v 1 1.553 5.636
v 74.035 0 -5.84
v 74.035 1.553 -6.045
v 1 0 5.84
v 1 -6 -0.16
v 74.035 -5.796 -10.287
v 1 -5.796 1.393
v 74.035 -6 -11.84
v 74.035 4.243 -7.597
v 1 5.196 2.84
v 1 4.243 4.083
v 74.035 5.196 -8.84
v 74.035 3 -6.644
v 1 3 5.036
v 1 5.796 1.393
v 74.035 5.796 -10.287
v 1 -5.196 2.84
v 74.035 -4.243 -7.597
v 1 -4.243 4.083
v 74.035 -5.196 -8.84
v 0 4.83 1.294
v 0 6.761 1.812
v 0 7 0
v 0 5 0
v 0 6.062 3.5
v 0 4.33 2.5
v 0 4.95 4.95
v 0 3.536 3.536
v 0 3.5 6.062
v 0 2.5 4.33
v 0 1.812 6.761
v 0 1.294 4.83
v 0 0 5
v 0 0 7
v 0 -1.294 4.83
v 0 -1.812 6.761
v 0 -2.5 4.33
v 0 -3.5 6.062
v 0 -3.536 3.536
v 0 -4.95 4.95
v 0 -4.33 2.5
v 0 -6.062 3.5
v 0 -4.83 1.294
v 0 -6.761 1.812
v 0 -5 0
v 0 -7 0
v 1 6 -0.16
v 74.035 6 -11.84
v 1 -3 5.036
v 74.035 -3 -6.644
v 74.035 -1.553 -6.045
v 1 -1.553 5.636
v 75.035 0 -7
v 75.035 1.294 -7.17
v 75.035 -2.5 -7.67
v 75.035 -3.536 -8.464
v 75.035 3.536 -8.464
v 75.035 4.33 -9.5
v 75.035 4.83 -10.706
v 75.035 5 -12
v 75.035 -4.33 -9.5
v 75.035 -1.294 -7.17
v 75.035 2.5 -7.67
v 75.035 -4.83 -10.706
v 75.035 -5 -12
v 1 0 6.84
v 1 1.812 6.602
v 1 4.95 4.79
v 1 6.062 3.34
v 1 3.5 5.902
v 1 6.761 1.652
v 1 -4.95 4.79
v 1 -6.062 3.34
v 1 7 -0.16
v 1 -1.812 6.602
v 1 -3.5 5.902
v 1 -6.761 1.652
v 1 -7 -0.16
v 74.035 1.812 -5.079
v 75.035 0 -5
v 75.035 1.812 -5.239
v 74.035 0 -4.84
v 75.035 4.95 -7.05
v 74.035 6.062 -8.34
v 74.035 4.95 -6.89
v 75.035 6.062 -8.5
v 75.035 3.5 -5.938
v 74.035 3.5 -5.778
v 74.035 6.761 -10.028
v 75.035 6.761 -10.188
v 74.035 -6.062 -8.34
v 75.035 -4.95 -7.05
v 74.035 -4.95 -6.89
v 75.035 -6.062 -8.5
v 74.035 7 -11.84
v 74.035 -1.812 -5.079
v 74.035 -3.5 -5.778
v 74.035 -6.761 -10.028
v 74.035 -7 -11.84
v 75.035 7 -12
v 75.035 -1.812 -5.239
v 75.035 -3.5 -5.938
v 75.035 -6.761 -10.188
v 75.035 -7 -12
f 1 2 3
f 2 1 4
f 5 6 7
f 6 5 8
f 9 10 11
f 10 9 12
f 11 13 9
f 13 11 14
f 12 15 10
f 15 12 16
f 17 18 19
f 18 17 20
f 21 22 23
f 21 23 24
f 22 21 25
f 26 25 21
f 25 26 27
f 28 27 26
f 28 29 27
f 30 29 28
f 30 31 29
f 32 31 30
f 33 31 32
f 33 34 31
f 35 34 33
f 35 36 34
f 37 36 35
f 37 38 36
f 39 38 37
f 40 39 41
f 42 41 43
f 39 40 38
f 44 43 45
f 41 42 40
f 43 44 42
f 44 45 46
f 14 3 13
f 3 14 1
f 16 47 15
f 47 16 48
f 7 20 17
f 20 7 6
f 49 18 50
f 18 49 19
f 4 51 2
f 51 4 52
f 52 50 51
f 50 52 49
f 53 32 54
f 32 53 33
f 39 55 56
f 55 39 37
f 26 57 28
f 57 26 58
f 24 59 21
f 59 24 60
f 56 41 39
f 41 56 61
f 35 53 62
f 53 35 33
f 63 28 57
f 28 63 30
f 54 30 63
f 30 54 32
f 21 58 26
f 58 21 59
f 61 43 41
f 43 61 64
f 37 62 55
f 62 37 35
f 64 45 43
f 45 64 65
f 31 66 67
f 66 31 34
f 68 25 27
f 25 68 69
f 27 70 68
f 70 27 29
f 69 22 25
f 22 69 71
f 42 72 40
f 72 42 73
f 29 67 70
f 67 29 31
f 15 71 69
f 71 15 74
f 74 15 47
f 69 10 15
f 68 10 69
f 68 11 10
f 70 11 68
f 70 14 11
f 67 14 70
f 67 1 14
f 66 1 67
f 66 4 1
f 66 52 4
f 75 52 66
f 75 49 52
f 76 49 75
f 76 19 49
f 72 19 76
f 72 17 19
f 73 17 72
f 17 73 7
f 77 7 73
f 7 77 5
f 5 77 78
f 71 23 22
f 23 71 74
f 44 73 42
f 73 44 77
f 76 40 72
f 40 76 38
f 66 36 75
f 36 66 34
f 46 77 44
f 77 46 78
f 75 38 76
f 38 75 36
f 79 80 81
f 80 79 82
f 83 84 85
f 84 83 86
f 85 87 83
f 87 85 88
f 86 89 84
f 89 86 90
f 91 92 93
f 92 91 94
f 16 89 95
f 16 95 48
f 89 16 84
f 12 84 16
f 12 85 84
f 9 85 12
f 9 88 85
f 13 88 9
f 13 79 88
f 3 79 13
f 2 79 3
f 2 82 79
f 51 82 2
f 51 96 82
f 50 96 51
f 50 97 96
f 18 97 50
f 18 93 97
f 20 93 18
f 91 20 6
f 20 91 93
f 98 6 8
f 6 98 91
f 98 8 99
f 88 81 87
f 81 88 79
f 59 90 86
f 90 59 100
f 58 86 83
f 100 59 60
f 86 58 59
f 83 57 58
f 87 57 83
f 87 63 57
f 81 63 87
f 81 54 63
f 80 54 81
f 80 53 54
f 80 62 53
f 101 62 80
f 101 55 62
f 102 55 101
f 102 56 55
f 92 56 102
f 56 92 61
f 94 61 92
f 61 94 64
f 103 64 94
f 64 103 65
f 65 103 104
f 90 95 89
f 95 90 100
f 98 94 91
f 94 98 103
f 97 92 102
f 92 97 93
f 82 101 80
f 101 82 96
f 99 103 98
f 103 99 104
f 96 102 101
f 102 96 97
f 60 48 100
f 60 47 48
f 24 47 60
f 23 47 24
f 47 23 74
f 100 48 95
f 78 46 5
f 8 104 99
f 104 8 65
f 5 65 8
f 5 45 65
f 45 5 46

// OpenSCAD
// file: ../build_environments.scad
// build_environments.scad: modules to build level sections
//

module pool(diameter=10.0, wall_height=2.0, step_width=3.0, connections=[])
{
    difference() {
        union() {
        difference() {
            cylinder(h=0.5,r1=diameter+step_width,r2=diameter+step_width,$fn=48);
            translate([0,0,-0.1])
                cylinder(h=0.7,r1=diameter,r2=diameter,$fn=48);
        }
        difference() {
            cylinder(h=wall_height,r1=diameter+step_width+1.0,r2=diameter+step_width+1.0,$fn=48);
            translate([0,0,-0.1])
                cylinder(h=wall_height+0.2,r1=diameter+step_width,r2=diameter+step_width,$fn=48);
        }
        }
    
        for (c = connections)
        {
            rotate([0,90,0]) {
                angle = atan2(c[1],c[0]);
                rotate([-angle,0,0]) {
                    cylinder(h=diameter+5.0,r1=c[2],r2=c[2],$fn=48);
                }
            }
        }
    }
}

module straight(length=10.0, width=2.0, dy1=0.0, dy2=0.0, dz=0.0)
{
    dims = [0, 0, 0, 0, 0, (dz/length)];
    matrix = [
        [ 1, dims[0], dims[1], 0 ],
        [ dims[2], 1, dims[4], 0 ],
        [ dims[5], dims[3], 1, 0 ],
        [ 0, 0, 0, 1 ]
    ];
    multmatrix(matrix)
    difference() {
        translate([dy1,0,0])
        union() {
            rotate([0,90,0]) {
                difference() {
                    cylinder(h=(length-dy1-dy2),r1=width+1.0,r2=width+1.0,$fn=24);
                    translate([0,0,-0.1])
                        cylinder(h=(length-dy1-dy2+0.2),r1=width,r2=width,$fn=24);
                }
                difference() {
                    cylinder(h=1.0,r1=width+2.0,r2=width+2.0,$fn=24);
                    translate([0,0,-0.1])
                        cylinder(h=1.2,r1=width,r2=width,$fn=24);
                }
                translate([0,0,(length-dy1-dy2)-1.0]) {
                    difference() {
                        cylinder(h=1.0,r1=width+2.0,r2=width+2.0,$fn=24);
                        translate([0,0,-0.1])
                            cylinder(h=1.2,r1=width,r2=width,$fn=24);
                    }
                }
            }
        }
        translate([0,0,-(2*width+4.0)/2])
            cube([3*length,3*length,2*width+4.0],center=true);
    }
}

module curve(p0=[0,0], center=[0,0], dir=1, angle=0.0, width=2.0)
{
    radius = sqrt((p0[0]-center[0])*(p0[0]-center[0]) + (p0[1]-center[1])*(p0[1]-center[1]));
    if (dir == 0) {
        difference() {
            rotate([0,0,-90])
            difference() {
                rotate_extrude(angle = angle, convexity = 10, $fn=32)
                    translate([radius, 0, 0])
                        circle(r = width+1.0,$fn=24);
                rotate([0,0,-1.0])
                    rotate_extrude(angle = angle+2.0, convexity = 10, $fn=32)
                        translate([radius, 0, 0])
                            circle(r = width,$fn=24);
            }
            translate([0,0,-(2*width+4.0)/2])
                cube([5*radius,5*radius,2*width+4.0],center=true);
        }
    }
    else {
        difference() {
            rotate([0,0,90])
            difference() {
                rotate_extrude(angle = -angle, convexity = 10, $fn=32)
                    translate([radius, 0, 0])
                        circle(r = width+1.0,$fn=24);
                rotate([0,0,1.0])
                    rotate_extrude(angle = -angle-2.0, convexity = 10, $fn=32)
                        translate([radius, 0, 0])
                            circle(r = width,$fn=24);
            }
            translate([0,0,-(2*width+4.0)/2])
                cube([5*radius,5*radius,2*width+4.0],center=true);
        }
    }

}

// test pool
//pool(diameter=12.0000, wall_height=3.0000, step_width=3.0000, connections=[[0.0000,-26.0000,2.0000], [23.6074,0.0000,2.0000]]);

// test straight, slope
//straight(length=26.0000, width=2.0000, dy1=11.8322, dy2=6.7082, dz=0.0000);
//straight(length=29.1549, width=12.0000, dy1=0.0000, dy2=0.0000, dz=-15.0000);

// test curve
//curve(p0=[23.6074, 0.0000], center=[23.6074, 5.0000], dir=0, angle=60.1011, width=2.0000);
//curve(p0=[33.6426, 12.4219], center=[37.9771, 9.9295], dir=1, angle=120.4627, width=2.0000);
// main file
use <../build_environments.scad>;
straight(length=75.0352, width=5.0000, dy1=0.0000, dy2=0.0000, dz=-12.0000);
